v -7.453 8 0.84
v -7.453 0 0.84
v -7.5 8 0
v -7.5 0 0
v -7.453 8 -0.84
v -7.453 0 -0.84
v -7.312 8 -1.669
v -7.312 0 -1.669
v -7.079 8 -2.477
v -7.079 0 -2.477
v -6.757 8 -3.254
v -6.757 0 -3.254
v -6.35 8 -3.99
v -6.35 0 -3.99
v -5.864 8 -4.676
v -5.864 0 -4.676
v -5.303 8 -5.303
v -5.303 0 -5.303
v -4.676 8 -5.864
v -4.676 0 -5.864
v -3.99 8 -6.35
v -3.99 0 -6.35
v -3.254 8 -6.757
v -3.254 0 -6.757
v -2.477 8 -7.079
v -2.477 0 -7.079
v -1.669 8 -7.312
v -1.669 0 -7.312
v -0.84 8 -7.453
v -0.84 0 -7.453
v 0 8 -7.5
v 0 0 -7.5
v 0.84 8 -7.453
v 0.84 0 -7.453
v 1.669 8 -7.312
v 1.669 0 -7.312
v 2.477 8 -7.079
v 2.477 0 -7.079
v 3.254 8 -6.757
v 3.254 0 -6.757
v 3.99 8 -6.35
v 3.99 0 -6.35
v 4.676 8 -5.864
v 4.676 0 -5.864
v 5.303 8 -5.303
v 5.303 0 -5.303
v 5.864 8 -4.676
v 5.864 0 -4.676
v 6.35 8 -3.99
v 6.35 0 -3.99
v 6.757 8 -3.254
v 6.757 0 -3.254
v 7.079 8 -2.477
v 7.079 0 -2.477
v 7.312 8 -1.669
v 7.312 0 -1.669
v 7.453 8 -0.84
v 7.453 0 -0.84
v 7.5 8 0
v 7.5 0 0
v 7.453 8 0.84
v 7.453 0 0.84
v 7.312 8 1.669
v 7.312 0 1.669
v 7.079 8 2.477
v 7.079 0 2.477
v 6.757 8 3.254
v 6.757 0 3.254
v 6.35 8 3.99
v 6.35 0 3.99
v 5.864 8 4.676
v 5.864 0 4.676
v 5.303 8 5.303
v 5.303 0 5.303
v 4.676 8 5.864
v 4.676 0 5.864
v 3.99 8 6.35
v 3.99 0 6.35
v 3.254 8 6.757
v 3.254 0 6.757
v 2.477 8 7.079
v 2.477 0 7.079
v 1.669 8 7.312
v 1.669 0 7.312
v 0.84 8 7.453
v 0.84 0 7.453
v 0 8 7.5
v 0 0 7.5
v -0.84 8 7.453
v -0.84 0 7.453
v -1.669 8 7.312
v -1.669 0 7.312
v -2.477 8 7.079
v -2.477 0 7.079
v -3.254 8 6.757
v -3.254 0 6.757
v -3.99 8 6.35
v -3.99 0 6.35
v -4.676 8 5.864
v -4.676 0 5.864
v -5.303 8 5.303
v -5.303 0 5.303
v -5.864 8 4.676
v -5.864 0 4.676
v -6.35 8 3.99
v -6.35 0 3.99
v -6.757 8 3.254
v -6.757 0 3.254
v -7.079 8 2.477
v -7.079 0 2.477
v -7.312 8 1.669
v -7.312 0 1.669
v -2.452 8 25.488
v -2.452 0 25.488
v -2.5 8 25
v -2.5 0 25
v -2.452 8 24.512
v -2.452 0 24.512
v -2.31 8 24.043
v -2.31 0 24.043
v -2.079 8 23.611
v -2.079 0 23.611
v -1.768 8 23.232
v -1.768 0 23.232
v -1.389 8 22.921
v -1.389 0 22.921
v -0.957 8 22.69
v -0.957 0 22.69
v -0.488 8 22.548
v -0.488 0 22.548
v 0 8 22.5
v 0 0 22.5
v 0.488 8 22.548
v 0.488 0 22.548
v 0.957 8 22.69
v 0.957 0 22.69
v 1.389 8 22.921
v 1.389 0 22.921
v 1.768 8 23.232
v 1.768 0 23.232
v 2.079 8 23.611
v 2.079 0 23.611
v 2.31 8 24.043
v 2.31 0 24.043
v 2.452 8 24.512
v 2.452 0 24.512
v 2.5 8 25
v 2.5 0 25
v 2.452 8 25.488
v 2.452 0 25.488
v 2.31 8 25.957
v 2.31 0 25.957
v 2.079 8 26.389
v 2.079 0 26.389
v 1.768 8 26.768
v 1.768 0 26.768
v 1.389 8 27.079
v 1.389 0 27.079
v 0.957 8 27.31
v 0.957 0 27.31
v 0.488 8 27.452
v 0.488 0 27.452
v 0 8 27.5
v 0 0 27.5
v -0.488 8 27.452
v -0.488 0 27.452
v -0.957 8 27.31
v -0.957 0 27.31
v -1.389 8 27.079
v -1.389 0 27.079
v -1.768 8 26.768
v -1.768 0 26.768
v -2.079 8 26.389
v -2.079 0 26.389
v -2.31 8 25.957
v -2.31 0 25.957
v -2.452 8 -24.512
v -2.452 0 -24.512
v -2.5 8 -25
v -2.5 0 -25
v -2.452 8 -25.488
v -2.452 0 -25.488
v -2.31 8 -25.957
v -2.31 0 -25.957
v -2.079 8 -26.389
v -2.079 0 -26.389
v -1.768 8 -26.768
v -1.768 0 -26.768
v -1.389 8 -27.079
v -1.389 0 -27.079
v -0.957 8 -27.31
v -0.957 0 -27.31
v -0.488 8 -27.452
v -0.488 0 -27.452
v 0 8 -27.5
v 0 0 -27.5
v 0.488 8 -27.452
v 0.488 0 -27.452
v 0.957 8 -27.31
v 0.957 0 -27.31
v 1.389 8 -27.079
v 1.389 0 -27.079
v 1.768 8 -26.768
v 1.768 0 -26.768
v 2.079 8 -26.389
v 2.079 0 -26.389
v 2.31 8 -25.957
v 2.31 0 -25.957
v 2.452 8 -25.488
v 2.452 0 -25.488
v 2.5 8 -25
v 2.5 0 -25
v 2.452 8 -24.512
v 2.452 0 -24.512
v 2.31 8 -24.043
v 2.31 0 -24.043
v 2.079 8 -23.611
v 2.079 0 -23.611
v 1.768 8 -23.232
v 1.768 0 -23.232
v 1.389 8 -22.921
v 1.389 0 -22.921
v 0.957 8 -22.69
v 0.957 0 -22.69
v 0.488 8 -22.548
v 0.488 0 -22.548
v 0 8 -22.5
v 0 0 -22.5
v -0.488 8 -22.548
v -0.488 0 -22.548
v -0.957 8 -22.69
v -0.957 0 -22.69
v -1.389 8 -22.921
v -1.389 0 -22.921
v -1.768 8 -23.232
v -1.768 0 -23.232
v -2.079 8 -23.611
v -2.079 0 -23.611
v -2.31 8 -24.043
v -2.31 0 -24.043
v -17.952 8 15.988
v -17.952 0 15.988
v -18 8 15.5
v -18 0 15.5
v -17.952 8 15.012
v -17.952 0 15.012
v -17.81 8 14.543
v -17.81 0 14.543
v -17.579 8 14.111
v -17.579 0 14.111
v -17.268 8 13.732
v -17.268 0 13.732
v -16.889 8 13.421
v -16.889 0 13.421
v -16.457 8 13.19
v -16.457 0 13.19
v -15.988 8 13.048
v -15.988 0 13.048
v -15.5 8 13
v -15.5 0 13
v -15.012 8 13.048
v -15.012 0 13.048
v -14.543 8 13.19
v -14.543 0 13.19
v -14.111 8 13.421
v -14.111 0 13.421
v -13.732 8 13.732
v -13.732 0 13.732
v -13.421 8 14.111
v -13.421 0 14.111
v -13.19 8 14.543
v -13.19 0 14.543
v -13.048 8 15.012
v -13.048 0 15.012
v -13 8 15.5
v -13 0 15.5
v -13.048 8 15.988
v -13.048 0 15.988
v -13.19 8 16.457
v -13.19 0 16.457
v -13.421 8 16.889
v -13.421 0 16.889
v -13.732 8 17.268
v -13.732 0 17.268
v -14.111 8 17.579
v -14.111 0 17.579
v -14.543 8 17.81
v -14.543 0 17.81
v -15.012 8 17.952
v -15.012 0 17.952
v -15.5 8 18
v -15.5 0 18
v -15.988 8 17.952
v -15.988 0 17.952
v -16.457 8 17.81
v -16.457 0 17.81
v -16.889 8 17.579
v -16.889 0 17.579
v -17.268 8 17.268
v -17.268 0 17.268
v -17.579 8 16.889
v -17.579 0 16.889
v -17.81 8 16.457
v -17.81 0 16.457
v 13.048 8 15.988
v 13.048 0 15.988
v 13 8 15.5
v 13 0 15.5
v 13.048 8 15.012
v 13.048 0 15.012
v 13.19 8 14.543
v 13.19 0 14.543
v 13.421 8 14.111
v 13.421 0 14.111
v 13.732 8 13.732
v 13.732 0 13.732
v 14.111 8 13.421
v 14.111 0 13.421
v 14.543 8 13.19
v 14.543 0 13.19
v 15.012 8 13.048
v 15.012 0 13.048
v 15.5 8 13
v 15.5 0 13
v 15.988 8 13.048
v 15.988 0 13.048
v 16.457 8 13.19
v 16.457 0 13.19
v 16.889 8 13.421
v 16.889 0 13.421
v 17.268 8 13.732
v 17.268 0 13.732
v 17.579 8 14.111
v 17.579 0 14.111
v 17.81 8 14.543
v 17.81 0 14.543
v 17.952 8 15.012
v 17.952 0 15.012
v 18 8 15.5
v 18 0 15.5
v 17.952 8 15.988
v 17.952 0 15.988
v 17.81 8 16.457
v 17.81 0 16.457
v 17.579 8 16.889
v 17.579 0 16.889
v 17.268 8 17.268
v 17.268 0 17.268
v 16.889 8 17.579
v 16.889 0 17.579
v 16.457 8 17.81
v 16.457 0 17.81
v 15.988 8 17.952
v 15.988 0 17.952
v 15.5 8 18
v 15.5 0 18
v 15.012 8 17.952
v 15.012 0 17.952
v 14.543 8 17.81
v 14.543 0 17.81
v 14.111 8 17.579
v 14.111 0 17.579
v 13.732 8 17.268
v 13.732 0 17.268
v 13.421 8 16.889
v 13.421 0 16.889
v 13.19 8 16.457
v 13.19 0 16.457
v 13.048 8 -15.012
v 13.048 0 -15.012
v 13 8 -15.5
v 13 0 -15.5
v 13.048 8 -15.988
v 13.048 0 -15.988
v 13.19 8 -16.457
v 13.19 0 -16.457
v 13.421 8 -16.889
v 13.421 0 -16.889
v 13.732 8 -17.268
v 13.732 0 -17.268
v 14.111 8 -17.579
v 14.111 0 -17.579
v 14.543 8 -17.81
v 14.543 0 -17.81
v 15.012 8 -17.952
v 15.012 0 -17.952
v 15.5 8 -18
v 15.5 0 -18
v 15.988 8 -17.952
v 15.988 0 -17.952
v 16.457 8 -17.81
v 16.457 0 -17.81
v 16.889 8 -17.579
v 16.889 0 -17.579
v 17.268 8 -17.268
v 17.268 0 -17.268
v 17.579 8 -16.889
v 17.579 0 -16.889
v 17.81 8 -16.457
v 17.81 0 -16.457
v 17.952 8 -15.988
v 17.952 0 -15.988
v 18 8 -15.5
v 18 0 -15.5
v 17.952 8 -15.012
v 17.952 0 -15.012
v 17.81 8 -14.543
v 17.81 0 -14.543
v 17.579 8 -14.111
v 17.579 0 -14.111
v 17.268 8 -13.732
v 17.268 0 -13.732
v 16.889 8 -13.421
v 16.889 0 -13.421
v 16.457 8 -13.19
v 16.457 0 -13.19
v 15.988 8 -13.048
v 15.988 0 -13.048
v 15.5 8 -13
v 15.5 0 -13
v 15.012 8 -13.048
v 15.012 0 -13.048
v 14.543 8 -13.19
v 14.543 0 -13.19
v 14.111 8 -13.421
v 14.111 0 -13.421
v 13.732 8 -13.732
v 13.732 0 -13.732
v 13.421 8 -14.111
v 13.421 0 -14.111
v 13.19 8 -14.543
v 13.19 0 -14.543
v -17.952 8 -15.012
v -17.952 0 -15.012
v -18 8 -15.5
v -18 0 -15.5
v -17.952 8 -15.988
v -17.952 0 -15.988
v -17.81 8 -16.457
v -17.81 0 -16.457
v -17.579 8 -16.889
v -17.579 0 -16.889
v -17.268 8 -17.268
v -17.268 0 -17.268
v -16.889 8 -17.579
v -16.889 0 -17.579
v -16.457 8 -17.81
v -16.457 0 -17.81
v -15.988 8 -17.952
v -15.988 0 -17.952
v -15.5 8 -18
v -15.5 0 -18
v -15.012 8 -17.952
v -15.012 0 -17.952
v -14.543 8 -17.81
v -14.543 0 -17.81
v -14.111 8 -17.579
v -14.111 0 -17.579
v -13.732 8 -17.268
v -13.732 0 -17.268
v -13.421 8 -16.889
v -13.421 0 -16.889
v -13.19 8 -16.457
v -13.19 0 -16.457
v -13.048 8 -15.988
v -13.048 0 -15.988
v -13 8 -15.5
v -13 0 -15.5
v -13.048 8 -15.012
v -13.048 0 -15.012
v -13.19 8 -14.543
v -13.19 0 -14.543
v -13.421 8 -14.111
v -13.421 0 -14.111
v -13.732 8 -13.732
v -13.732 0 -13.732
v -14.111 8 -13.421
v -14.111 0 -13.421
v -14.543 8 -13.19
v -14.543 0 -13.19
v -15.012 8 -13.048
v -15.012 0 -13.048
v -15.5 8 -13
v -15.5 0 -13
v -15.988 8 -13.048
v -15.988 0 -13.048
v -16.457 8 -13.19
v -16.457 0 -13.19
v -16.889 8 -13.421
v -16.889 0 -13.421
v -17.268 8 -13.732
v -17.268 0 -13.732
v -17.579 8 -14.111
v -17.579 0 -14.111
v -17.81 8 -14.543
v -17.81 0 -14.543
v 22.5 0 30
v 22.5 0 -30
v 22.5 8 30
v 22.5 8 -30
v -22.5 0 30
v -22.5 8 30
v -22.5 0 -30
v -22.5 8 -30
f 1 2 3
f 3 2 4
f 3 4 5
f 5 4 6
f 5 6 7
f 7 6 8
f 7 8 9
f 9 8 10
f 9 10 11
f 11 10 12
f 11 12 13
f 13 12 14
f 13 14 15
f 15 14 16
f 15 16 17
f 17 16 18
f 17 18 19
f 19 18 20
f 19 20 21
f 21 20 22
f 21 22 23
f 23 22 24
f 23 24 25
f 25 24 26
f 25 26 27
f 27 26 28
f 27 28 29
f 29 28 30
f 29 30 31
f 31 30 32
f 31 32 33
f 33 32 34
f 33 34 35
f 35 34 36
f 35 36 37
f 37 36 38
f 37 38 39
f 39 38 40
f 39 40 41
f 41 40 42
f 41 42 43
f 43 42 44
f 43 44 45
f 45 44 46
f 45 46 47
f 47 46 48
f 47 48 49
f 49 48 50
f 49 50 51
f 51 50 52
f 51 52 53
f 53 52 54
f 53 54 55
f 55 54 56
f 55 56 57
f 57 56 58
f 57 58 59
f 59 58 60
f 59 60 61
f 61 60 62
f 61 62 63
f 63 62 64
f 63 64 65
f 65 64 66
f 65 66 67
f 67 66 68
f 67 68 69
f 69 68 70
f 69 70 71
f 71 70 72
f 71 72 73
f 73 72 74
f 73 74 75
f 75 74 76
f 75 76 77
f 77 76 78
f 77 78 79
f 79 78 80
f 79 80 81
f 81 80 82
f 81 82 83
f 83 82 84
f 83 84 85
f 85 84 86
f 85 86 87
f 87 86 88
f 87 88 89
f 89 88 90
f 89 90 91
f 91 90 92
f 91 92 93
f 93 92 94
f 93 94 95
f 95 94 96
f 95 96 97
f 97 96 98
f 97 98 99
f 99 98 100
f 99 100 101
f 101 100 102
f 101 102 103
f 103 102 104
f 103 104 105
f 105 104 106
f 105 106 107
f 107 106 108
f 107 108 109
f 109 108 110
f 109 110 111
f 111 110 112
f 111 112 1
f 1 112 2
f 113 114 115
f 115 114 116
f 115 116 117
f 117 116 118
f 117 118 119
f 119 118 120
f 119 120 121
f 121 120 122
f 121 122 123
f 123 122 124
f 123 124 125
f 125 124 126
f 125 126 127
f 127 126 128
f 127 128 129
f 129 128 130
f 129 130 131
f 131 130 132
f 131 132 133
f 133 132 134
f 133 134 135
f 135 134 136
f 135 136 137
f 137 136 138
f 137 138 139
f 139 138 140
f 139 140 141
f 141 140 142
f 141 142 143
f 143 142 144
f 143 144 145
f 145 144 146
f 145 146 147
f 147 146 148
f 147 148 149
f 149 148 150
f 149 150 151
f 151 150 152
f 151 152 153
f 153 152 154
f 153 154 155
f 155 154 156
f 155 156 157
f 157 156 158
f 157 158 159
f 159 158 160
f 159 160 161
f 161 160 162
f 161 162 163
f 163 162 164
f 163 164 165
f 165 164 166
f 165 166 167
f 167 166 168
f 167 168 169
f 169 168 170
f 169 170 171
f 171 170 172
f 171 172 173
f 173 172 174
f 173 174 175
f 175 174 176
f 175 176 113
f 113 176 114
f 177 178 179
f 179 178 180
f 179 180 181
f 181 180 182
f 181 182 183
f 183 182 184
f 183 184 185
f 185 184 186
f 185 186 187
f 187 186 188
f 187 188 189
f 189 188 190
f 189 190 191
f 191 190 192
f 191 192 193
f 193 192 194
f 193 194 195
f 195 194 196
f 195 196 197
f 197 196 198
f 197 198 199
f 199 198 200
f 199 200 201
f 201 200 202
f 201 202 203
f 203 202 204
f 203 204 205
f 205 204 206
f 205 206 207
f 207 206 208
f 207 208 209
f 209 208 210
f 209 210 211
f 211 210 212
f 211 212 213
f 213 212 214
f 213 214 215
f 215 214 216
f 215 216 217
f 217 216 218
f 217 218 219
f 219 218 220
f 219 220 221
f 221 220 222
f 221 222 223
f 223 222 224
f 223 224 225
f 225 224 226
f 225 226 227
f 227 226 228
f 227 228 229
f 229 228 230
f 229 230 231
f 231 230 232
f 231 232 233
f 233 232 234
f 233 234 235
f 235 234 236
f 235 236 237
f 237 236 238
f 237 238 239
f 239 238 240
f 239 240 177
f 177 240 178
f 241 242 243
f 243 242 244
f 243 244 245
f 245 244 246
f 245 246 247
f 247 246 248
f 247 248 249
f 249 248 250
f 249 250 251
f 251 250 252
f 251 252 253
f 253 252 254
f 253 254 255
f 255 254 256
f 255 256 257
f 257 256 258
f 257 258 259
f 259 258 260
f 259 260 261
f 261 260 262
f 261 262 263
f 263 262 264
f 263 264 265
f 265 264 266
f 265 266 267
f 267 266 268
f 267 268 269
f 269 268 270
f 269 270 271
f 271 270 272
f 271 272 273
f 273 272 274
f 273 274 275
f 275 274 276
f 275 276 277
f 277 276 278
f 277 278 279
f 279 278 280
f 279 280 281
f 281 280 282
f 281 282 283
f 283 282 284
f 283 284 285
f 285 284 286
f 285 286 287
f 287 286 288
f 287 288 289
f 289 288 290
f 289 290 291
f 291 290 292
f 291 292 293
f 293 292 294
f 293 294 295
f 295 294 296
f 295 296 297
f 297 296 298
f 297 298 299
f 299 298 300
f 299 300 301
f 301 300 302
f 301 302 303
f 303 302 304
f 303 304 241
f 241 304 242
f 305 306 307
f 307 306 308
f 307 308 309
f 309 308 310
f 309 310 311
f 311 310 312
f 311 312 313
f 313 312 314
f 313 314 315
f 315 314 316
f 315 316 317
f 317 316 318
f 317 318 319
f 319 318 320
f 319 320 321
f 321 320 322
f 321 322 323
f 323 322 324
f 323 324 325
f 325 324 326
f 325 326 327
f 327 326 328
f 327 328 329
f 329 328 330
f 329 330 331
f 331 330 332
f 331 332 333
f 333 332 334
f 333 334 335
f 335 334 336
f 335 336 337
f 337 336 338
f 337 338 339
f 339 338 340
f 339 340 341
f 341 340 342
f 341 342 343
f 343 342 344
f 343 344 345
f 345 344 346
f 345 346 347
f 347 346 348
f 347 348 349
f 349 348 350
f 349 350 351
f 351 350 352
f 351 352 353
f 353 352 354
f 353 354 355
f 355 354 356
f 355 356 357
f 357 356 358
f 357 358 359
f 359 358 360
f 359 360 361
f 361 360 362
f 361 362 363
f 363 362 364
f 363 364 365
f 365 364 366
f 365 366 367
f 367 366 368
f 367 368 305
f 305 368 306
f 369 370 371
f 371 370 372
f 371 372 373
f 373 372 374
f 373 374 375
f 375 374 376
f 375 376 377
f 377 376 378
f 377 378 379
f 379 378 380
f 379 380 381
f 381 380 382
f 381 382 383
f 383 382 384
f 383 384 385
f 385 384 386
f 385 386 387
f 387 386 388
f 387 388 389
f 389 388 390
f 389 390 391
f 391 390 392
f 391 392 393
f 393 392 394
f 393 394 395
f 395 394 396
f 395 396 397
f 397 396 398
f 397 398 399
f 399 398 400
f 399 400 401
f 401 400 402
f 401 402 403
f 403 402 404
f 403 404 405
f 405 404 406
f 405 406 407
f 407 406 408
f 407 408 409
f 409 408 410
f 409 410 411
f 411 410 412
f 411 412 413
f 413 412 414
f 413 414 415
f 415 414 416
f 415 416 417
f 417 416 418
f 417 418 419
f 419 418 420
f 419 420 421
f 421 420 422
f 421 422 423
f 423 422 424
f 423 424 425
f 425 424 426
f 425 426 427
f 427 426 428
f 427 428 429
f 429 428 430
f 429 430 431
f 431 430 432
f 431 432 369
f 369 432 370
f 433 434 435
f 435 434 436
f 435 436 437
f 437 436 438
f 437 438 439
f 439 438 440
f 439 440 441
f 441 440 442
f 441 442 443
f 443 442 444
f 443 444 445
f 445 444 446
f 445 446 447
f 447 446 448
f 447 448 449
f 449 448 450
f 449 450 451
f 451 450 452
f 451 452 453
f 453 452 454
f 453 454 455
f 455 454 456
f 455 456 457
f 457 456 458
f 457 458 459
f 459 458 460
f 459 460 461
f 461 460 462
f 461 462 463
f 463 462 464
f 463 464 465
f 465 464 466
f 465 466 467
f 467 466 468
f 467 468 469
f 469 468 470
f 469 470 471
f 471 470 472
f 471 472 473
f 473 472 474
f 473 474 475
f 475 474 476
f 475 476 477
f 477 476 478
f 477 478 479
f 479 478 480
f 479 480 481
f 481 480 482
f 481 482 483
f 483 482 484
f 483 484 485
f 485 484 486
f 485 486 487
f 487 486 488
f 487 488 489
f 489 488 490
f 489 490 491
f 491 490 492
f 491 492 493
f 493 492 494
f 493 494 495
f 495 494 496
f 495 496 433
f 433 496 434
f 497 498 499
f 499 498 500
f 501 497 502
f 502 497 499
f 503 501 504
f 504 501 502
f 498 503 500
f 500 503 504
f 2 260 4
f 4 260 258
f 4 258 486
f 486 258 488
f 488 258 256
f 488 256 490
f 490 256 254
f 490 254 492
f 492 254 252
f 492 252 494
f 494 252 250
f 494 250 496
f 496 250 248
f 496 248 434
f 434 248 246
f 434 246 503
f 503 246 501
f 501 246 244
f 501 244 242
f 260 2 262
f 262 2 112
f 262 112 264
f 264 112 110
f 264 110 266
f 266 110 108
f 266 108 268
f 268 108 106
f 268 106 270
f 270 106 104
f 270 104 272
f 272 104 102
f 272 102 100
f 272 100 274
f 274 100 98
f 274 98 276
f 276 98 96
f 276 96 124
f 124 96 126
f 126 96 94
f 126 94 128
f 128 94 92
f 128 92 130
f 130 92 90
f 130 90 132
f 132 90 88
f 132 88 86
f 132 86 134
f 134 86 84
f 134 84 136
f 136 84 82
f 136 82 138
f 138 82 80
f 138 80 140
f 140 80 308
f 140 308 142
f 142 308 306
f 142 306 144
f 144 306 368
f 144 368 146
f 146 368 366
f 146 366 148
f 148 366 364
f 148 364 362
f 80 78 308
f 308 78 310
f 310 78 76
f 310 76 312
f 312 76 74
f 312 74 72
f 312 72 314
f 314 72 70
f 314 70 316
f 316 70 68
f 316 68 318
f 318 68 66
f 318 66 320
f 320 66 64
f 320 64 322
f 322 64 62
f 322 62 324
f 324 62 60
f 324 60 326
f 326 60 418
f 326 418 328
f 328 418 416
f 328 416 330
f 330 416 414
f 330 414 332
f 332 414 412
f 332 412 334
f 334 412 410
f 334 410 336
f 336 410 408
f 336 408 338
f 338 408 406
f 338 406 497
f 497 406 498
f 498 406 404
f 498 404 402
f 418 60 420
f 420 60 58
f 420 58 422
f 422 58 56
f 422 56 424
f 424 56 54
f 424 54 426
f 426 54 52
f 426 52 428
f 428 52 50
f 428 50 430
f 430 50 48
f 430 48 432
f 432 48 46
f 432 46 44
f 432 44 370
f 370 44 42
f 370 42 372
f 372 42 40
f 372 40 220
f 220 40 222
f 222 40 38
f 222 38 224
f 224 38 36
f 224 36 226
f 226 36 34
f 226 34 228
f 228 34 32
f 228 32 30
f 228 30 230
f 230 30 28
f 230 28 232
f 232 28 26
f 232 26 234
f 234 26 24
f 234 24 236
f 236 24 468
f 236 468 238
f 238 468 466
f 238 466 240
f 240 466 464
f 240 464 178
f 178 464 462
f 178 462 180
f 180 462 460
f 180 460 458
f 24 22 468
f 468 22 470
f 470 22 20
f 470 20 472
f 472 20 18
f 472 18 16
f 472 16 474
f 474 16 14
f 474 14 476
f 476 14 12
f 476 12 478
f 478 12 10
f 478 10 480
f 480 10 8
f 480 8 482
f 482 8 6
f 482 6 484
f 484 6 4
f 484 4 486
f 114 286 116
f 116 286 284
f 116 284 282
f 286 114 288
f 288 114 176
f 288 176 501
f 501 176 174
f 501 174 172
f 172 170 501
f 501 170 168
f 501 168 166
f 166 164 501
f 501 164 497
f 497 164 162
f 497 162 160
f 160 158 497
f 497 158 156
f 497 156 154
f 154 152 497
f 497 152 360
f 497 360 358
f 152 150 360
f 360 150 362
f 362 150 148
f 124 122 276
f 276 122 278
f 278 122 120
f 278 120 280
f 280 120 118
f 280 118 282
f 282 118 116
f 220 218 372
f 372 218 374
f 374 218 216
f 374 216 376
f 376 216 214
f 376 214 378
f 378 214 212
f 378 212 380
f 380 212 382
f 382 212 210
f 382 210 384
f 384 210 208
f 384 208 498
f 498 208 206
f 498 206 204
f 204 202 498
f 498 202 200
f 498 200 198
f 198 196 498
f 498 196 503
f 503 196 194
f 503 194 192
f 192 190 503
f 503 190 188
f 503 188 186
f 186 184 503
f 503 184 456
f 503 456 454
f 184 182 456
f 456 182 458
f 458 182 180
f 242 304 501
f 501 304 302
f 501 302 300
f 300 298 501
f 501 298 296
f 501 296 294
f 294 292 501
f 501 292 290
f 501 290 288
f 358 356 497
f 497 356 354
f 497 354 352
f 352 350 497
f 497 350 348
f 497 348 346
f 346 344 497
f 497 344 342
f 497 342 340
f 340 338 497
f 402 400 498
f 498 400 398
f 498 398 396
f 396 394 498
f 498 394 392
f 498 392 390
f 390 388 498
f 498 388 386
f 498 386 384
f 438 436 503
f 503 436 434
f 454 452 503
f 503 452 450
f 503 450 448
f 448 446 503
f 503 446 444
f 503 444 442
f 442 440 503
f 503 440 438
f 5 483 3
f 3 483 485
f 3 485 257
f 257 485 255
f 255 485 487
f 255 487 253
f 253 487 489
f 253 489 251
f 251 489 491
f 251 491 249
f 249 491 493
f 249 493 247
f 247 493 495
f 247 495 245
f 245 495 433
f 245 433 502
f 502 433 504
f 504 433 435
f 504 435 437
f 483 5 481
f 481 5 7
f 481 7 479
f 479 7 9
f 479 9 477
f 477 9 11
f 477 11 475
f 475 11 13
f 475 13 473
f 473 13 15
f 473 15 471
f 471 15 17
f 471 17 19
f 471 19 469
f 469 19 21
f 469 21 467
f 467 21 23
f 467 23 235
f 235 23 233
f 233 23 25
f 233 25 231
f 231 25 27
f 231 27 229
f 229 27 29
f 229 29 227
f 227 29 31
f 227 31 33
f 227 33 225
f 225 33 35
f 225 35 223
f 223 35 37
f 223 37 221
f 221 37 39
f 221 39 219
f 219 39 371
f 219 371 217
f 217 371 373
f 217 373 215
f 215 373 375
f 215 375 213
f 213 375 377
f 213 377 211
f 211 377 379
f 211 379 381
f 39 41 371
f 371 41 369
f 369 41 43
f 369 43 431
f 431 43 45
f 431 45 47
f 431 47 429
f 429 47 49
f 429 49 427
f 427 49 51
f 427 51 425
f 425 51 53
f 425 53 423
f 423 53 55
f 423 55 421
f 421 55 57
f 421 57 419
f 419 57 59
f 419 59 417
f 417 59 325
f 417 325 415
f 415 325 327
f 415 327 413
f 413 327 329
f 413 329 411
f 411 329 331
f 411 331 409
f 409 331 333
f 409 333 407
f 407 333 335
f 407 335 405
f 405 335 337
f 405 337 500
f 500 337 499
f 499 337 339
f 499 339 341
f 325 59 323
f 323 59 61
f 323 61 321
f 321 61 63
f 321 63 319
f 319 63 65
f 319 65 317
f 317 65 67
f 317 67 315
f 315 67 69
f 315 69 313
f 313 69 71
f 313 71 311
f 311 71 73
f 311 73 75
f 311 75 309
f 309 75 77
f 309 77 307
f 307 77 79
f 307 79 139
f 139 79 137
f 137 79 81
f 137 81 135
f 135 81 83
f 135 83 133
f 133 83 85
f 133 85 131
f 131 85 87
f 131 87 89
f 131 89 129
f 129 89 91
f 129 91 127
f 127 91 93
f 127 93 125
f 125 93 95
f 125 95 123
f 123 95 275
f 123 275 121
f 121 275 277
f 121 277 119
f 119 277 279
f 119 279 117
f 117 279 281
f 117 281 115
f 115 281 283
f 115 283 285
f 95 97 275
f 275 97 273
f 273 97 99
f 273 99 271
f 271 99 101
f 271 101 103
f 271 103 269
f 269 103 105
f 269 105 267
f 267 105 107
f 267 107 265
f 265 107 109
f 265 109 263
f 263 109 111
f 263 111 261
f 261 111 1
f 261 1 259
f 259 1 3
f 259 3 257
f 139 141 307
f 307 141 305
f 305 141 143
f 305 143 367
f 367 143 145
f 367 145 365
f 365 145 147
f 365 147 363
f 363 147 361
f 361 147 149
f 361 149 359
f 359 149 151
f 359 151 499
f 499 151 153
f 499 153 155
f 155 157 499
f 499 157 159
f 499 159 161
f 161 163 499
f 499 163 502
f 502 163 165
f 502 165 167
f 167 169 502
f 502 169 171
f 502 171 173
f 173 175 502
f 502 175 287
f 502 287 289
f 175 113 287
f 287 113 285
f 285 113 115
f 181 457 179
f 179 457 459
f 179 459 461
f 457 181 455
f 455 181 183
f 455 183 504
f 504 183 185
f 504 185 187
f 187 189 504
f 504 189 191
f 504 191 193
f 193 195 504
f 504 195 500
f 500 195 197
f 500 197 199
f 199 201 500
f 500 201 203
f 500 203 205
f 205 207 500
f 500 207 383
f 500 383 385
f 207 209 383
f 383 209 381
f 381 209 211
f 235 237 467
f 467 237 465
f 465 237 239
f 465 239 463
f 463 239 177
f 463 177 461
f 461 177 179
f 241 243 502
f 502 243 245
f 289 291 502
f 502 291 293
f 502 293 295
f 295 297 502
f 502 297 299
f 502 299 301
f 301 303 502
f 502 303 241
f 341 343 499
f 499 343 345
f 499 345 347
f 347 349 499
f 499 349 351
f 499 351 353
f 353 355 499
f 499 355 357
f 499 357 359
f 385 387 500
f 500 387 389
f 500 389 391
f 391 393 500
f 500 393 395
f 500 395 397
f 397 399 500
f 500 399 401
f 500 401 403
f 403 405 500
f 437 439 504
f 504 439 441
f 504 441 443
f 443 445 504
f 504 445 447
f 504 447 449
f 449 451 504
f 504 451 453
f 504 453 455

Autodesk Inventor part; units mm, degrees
ref_plane "YZ Plane" through (0, 0, 0) normal (1, 0, 0) x (0, 1, 0)
ref_plane "XZ Plane" through (0, 0, 0) normal (0, 1, 0) x (-1, 0, 0)
ref_plane "XY Plane" through (0, 0, 0) normal (0, 0, 1) x (1, 0, 0)
sketch "Sketch1" plane through (0, 0, 0) normal (0, 1, 0) x (-1, 0, 0)
  line L0 (22.5, -30) -> (-22.5, -30)
  line L1 (-22.5, -30) -> (-22.5, 30)
  line L2 (-22.5, 30) -> (22.5, 30)
  line L3 (22.5, 30) -> (22.5, -30)
  line L4 (0, 0) -> (0, -2.1911) construction
  line L5 (0, 0) -> (-2.34, 0) construction
  line L6 (15.5, -15.5) -> (-15.5, -15.5) construction
  line L7 (-15.5, -15.5) -> (-15.5, 15.5) construction
  line L8 (-15.5, 15.5) -> (15.5, 15.5) construction
  line L9 (15.5, 15.5) -> (15.5, -15.5) construction
  circle A0 centre (15.5, -15.5) radius 2.5
  circle A1 centre (-15.5, -15.5) radius 2.5
  circle A2 centre (-15.5, 15.5) radius 2.5
  circle A3 centre (15.5, 15.5) radius 2.5
  circle A4 centre (0, -25) radius 2.5
  circle A5 centre (0, 25) radius 2.5
  line L10 (0, -25) -> (0, -30) construction
  line L11 (0, 30) -> (0, 25) construction
  circle A6 centre (0, 0) radius 7.5
  point P0 (0, -1.0955)
  dimension "d6" = 60
  dimension "d7" = 45
  dimension "d8" = 31
  dimension "d9" = 5
  dimension "d10" = 5
  dimension "d11" = 5
  dimension "d12" = 5
  dimension "d13" = 5
  dimension "d14" = 5
  dimension "d15" = 15
extrude "Extrusion1" add sketch "Sketch1" along normal blind 8
properties part number "XMotorMount"
